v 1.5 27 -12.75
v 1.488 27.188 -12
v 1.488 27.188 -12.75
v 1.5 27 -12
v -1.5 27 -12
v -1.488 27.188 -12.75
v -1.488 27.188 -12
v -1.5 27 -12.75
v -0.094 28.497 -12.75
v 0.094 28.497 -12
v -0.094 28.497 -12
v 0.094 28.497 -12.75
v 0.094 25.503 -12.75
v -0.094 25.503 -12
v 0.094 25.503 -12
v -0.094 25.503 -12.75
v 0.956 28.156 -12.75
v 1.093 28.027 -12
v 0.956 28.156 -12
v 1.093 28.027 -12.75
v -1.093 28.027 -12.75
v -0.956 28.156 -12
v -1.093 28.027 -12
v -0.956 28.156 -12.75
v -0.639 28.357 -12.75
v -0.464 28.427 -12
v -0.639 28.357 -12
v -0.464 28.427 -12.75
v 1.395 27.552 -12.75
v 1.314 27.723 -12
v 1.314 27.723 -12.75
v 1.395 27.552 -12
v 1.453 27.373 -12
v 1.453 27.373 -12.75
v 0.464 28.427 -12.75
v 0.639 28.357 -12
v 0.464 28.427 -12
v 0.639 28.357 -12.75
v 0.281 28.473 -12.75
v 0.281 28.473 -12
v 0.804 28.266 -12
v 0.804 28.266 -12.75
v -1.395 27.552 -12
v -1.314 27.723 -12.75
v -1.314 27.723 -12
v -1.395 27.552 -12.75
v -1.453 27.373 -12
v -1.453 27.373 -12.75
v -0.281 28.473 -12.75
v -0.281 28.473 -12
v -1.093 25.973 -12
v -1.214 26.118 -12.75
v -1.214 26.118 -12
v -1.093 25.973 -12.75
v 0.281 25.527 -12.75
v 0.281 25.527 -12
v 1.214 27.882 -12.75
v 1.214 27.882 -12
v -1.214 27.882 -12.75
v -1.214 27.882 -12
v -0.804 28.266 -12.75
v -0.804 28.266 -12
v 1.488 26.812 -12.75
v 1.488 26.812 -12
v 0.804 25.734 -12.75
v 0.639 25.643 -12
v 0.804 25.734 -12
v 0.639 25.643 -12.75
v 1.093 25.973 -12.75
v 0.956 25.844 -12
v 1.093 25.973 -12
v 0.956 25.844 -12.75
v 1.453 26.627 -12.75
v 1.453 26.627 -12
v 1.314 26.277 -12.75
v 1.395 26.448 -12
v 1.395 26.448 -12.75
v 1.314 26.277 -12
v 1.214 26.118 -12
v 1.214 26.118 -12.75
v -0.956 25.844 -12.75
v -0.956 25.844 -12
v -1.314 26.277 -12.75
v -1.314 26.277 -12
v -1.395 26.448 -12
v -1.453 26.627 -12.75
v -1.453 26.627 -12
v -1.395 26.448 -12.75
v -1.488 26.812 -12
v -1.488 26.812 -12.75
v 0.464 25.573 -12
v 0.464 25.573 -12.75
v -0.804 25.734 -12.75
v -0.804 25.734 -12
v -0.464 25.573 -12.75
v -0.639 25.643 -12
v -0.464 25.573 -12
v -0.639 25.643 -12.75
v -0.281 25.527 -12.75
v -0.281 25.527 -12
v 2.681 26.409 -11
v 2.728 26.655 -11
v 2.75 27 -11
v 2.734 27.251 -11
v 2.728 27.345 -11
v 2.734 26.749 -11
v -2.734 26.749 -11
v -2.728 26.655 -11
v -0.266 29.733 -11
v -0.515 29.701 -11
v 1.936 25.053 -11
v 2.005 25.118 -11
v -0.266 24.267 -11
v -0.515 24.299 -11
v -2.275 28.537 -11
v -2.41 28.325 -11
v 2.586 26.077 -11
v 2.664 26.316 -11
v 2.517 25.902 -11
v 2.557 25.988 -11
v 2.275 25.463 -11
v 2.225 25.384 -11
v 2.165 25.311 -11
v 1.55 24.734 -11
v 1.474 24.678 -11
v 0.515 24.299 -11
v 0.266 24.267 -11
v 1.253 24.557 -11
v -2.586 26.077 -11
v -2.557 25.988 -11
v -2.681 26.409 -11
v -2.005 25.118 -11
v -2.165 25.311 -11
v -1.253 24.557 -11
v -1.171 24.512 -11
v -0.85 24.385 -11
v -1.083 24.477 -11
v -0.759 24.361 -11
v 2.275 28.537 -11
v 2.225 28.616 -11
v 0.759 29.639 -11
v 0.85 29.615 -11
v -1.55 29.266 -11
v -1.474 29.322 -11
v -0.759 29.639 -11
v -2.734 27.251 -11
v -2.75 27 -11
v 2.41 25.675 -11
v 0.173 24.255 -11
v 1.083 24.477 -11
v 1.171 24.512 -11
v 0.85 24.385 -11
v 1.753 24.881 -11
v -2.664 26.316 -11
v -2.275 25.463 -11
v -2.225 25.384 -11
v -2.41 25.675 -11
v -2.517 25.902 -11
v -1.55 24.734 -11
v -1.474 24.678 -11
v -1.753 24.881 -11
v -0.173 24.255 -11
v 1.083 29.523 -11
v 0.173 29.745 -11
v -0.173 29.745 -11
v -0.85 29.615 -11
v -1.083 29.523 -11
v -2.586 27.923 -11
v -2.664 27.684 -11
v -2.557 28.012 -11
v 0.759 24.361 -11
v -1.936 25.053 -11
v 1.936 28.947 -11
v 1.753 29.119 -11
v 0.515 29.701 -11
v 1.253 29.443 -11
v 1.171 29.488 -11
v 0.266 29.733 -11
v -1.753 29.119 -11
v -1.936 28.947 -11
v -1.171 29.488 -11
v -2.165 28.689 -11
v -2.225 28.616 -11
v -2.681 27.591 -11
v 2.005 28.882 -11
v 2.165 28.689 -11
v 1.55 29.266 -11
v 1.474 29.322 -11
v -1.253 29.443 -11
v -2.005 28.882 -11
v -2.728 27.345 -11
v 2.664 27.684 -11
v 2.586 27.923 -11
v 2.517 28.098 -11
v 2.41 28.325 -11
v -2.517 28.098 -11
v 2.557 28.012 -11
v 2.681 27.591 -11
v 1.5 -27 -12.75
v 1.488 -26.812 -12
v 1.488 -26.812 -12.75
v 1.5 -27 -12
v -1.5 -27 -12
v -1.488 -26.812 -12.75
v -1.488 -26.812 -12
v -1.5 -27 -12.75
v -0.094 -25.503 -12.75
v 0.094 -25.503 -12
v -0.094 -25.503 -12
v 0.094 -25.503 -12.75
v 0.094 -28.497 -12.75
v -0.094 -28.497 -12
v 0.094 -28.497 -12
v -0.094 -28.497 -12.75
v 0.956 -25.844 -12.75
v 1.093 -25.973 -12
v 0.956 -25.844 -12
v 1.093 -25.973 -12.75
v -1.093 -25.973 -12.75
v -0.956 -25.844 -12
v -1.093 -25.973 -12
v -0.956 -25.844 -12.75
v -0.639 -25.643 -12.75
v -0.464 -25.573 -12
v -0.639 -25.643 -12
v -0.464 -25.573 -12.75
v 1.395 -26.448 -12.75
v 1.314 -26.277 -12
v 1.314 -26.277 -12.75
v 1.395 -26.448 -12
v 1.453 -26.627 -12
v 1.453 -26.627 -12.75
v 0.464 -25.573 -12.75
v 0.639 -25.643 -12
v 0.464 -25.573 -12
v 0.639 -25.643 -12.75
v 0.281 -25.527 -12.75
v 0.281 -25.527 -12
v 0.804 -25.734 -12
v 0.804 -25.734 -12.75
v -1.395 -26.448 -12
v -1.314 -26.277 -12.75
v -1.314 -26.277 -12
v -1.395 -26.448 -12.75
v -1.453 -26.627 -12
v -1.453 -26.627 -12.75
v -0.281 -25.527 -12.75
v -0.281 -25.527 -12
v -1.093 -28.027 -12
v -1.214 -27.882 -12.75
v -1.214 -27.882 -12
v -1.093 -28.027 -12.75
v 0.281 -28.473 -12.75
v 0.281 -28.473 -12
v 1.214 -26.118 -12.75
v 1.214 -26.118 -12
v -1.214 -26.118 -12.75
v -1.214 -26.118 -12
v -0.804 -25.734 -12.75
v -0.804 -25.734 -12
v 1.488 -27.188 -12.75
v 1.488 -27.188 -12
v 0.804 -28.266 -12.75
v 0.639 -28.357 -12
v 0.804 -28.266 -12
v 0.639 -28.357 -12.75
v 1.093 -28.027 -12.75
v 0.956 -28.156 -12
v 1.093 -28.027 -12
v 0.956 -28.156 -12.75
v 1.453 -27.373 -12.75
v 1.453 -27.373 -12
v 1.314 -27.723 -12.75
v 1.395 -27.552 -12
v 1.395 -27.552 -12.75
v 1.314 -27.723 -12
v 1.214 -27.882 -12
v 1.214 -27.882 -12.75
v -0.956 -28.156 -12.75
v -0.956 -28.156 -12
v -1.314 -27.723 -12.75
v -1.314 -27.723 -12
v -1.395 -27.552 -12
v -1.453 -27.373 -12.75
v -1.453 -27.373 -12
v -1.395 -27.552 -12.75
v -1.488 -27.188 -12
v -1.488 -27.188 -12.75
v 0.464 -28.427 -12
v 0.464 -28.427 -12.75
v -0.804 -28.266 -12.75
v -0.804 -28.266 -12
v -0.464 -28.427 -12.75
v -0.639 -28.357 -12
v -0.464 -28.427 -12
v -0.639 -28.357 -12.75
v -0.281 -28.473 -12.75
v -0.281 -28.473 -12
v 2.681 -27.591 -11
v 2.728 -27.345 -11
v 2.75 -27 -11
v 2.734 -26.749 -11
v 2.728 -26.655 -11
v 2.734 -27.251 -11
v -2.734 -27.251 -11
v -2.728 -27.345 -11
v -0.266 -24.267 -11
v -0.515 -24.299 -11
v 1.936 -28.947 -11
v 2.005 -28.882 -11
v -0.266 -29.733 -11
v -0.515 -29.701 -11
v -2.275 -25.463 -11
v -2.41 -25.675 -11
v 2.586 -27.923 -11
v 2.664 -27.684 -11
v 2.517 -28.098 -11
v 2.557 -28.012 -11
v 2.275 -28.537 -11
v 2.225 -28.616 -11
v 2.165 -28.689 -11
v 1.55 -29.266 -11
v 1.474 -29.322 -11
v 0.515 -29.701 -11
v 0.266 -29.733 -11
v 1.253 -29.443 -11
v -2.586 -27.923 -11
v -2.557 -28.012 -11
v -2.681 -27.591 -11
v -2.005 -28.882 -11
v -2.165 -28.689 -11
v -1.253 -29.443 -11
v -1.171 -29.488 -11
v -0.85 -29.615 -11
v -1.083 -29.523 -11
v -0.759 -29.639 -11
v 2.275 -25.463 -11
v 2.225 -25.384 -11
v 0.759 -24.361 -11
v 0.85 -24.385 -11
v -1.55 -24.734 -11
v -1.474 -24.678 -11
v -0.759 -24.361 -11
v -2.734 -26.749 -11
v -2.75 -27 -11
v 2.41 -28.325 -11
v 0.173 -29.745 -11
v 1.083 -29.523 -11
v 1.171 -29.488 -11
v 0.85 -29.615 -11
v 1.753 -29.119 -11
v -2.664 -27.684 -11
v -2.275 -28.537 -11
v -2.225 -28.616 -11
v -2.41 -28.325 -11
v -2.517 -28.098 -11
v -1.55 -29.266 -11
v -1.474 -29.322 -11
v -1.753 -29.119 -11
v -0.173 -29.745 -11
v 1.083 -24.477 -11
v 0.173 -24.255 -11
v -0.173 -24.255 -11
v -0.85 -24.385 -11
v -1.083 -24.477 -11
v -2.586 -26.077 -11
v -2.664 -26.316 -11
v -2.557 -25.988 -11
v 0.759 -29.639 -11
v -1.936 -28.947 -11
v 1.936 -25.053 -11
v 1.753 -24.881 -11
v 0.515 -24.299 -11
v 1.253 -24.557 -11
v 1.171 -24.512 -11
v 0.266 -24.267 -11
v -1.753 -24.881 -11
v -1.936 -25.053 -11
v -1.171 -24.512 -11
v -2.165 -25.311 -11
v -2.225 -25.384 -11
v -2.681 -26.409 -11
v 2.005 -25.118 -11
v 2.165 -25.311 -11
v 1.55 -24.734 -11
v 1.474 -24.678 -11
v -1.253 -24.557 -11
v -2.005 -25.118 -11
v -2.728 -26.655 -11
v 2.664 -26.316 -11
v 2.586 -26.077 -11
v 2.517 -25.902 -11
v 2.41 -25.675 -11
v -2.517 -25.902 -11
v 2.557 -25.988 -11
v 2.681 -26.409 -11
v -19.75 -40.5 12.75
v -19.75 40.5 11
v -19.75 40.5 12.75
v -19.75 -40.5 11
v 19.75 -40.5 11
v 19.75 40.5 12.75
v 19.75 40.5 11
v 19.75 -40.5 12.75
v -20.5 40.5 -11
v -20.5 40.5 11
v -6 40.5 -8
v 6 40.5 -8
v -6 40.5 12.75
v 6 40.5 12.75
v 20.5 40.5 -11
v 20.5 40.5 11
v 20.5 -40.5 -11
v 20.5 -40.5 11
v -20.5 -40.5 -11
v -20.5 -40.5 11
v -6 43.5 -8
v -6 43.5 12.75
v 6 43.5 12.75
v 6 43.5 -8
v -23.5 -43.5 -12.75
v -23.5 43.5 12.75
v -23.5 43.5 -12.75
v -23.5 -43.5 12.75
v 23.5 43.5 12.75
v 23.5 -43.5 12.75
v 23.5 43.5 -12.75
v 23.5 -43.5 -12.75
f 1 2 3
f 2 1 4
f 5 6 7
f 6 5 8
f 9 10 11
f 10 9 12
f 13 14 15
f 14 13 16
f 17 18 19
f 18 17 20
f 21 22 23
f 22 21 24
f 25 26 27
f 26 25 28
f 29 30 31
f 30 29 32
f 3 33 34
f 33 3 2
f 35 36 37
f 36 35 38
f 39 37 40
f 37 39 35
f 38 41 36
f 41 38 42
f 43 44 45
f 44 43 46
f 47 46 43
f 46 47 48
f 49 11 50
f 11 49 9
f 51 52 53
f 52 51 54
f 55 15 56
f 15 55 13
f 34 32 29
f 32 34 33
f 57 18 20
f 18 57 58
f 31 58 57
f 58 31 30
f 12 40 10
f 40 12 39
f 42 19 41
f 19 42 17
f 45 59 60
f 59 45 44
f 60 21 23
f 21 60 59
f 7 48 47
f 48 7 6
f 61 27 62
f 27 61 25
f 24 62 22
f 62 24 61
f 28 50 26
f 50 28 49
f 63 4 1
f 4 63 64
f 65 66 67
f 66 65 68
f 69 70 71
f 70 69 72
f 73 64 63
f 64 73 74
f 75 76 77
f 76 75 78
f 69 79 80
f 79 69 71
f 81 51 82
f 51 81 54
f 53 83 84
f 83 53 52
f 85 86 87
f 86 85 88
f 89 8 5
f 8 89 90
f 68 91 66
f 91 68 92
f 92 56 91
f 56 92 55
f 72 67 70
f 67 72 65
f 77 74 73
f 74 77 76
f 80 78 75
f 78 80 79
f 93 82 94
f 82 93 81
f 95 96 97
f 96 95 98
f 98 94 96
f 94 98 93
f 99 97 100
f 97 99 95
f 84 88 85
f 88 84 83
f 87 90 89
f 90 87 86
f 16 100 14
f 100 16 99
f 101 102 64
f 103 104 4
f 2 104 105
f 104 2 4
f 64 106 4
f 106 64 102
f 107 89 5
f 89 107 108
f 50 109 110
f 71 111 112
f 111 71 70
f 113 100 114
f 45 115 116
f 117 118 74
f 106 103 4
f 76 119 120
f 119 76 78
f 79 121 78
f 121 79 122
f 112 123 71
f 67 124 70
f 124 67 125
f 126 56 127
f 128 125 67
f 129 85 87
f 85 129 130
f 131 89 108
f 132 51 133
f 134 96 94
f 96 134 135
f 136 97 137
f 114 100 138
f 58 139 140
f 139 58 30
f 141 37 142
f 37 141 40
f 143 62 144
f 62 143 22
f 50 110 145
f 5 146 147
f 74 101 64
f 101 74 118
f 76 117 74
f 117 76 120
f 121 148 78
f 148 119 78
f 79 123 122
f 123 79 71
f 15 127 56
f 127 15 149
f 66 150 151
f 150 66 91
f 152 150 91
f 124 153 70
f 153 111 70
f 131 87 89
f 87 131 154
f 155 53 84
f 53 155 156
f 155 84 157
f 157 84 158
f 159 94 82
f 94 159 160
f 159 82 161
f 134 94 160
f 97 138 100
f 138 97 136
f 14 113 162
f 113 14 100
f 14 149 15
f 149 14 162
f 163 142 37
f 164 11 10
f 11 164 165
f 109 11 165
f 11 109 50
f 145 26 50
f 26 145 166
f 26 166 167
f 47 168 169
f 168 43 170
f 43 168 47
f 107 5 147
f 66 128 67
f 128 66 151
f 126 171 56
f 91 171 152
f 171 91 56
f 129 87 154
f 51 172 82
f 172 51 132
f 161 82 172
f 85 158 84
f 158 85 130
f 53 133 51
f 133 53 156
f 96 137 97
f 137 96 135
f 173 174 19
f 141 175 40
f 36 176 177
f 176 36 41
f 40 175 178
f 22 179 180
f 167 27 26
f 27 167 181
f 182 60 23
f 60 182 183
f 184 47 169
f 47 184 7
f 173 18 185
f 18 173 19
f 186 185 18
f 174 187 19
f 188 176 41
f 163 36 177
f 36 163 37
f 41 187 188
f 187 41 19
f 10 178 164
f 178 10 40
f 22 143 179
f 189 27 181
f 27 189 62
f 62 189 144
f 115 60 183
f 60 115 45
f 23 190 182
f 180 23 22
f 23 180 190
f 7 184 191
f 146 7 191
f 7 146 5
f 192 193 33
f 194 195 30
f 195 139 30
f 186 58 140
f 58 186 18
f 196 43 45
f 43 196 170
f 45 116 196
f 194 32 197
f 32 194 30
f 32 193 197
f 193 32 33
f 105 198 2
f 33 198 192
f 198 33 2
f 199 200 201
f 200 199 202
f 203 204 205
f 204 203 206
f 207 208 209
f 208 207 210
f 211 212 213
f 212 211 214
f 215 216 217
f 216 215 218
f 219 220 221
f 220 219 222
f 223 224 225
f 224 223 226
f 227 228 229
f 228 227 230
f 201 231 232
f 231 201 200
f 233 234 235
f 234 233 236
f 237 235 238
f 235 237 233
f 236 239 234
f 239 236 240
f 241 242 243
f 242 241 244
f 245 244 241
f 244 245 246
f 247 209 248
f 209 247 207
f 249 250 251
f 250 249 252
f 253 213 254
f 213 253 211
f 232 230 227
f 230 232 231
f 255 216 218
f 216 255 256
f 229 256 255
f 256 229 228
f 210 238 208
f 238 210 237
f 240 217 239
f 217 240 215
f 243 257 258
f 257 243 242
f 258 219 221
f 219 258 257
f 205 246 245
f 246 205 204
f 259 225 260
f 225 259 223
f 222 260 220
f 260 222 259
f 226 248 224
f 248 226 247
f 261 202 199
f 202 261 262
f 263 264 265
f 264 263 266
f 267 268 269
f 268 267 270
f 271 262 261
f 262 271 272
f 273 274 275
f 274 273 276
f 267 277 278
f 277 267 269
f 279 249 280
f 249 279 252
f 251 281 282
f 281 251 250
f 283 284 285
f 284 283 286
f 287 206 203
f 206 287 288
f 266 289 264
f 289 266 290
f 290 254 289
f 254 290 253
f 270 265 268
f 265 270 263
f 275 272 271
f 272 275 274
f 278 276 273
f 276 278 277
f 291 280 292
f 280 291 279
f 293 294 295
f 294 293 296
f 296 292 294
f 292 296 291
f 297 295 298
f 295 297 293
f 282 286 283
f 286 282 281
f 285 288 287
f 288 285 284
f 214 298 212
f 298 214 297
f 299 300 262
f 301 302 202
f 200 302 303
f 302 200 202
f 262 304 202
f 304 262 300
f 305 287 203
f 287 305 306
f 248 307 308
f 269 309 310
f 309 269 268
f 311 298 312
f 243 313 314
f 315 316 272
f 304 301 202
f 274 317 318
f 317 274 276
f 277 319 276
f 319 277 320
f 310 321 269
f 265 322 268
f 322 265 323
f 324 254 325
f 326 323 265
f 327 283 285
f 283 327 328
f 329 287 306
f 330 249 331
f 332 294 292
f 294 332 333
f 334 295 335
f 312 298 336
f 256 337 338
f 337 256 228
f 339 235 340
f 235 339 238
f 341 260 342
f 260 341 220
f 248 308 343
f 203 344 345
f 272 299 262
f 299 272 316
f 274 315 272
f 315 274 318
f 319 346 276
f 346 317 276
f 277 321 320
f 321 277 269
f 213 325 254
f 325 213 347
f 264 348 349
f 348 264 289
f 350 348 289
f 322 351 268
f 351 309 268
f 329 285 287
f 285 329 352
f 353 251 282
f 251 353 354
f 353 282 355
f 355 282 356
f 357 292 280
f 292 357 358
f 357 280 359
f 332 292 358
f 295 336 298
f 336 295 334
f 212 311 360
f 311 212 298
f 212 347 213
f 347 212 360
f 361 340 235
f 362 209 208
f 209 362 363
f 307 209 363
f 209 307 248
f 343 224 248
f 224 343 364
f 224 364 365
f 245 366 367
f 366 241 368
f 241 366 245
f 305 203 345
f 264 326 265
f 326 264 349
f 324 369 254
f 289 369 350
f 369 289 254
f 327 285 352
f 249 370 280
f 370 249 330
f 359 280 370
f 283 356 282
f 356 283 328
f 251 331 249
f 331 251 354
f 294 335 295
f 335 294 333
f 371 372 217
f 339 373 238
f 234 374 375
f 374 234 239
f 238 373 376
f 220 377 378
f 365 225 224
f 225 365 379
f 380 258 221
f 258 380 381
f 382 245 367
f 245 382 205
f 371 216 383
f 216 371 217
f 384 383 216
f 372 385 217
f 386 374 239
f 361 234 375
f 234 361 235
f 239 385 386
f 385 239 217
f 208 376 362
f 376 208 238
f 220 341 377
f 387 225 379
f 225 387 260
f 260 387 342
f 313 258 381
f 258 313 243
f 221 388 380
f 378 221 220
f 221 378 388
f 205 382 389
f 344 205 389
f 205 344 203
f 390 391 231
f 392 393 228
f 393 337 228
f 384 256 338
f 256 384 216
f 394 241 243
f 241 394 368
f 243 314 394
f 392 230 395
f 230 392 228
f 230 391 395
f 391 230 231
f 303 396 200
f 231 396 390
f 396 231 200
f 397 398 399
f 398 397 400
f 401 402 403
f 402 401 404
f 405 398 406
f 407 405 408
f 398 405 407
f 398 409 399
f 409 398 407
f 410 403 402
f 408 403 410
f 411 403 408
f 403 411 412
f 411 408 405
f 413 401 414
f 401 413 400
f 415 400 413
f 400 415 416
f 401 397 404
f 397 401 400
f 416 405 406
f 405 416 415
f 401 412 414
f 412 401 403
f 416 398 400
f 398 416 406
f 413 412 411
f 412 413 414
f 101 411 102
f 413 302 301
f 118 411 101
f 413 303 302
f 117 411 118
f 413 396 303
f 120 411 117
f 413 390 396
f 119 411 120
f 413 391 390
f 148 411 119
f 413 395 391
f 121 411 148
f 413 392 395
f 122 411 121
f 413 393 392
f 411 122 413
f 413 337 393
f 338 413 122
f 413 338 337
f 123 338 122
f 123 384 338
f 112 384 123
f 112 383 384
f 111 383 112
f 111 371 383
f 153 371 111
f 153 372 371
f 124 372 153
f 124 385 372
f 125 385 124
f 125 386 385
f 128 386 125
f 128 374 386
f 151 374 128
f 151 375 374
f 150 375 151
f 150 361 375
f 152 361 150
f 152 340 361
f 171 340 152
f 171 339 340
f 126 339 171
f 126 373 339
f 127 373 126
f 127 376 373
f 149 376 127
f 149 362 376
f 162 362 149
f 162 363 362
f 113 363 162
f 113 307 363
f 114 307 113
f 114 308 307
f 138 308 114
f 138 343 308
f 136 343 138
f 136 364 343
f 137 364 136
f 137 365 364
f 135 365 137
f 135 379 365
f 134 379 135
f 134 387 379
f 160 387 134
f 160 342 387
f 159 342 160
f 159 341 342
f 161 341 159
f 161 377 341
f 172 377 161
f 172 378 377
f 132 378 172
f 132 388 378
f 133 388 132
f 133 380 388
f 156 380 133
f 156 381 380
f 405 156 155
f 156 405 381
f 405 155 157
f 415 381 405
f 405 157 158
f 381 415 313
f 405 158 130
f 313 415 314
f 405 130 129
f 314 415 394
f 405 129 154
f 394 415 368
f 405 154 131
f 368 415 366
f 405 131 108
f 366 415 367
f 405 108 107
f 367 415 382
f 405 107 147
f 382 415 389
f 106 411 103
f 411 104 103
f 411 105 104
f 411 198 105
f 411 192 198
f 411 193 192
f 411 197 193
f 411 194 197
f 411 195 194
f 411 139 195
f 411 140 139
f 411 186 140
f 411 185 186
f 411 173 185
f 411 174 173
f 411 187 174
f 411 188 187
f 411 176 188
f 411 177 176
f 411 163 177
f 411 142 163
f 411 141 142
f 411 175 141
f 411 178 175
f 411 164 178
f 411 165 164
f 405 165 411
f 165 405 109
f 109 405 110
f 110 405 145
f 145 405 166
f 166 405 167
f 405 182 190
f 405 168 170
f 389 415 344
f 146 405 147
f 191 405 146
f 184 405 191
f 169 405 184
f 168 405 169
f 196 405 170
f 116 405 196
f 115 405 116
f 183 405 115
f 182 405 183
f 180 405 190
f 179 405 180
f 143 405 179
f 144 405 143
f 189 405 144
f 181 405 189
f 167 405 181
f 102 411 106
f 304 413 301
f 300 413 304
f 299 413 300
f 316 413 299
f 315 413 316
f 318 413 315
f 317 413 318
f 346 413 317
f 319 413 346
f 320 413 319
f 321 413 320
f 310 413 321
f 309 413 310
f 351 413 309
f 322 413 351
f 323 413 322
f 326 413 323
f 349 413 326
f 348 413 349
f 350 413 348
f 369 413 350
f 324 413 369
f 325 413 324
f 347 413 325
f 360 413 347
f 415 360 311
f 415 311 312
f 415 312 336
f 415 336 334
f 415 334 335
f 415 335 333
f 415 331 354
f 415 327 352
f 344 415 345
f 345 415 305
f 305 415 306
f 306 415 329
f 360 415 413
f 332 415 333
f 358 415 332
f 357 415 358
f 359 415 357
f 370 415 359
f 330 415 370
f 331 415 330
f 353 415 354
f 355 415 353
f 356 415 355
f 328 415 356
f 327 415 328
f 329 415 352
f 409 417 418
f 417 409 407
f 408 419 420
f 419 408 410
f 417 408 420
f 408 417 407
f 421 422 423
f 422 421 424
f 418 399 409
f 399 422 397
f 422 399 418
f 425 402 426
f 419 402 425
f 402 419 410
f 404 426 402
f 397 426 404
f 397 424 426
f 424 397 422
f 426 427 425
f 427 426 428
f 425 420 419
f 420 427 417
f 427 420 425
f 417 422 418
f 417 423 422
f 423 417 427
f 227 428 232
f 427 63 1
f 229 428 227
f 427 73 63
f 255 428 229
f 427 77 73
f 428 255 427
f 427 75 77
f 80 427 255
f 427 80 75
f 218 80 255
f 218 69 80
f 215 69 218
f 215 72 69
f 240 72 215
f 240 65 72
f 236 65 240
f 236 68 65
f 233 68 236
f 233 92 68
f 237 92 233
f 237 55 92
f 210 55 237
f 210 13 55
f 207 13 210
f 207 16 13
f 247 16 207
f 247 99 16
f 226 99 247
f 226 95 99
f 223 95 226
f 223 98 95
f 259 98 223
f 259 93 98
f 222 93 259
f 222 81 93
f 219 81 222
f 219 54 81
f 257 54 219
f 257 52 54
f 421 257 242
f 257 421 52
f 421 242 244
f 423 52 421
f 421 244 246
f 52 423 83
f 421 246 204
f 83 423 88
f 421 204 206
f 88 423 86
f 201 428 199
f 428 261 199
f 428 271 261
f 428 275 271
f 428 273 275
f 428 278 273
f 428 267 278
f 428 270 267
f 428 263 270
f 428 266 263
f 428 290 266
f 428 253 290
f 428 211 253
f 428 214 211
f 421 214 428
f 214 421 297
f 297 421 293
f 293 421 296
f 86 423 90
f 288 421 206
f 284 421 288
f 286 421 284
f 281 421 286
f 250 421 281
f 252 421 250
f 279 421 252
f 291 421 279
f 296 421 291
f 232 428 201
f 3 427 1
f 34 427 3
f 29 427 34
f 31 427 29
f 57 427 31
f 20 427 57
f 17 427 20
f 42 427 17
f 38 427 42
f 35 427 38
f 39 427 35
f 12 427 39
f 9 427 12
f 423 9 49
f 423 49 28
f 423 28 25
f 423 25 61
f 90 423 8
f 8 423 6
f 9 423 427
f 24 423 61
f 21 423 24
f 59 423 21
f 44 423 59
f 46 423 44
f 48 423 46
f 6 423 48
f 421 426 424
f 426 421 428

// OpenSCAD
l=81;
h=22;
w=41;
t = 3;
c = 12;
e = .01;

module countersink(hole_d,hole_h, screw_d,screw_h){
    hh = hole_h - screw_h ;
    union(){
        cylinder(d=hole_d,h=hh+e,$fn=50);
        translate([0,0,hh]) cylinder(d1=hole_d, d2=screw_d,h=screw_h,$fn=50);
    }
}

difference(){
    cube([w+t*2,l+t*2,h+t+.5], center=true);
       
    union(){
        translate([0,0,t+1])
        cube([w-1.5,l,h], center=true);
        cube([w,l,h], center=true);
        translate([0,2*t,t])
        cube([c,l,h], center=true);
        for ( i =[1,-1]){
            translate([0,i * l/3,t/2-h+.5])
            countersink(3, 10, 8,2 );
            
        }
    }
}
